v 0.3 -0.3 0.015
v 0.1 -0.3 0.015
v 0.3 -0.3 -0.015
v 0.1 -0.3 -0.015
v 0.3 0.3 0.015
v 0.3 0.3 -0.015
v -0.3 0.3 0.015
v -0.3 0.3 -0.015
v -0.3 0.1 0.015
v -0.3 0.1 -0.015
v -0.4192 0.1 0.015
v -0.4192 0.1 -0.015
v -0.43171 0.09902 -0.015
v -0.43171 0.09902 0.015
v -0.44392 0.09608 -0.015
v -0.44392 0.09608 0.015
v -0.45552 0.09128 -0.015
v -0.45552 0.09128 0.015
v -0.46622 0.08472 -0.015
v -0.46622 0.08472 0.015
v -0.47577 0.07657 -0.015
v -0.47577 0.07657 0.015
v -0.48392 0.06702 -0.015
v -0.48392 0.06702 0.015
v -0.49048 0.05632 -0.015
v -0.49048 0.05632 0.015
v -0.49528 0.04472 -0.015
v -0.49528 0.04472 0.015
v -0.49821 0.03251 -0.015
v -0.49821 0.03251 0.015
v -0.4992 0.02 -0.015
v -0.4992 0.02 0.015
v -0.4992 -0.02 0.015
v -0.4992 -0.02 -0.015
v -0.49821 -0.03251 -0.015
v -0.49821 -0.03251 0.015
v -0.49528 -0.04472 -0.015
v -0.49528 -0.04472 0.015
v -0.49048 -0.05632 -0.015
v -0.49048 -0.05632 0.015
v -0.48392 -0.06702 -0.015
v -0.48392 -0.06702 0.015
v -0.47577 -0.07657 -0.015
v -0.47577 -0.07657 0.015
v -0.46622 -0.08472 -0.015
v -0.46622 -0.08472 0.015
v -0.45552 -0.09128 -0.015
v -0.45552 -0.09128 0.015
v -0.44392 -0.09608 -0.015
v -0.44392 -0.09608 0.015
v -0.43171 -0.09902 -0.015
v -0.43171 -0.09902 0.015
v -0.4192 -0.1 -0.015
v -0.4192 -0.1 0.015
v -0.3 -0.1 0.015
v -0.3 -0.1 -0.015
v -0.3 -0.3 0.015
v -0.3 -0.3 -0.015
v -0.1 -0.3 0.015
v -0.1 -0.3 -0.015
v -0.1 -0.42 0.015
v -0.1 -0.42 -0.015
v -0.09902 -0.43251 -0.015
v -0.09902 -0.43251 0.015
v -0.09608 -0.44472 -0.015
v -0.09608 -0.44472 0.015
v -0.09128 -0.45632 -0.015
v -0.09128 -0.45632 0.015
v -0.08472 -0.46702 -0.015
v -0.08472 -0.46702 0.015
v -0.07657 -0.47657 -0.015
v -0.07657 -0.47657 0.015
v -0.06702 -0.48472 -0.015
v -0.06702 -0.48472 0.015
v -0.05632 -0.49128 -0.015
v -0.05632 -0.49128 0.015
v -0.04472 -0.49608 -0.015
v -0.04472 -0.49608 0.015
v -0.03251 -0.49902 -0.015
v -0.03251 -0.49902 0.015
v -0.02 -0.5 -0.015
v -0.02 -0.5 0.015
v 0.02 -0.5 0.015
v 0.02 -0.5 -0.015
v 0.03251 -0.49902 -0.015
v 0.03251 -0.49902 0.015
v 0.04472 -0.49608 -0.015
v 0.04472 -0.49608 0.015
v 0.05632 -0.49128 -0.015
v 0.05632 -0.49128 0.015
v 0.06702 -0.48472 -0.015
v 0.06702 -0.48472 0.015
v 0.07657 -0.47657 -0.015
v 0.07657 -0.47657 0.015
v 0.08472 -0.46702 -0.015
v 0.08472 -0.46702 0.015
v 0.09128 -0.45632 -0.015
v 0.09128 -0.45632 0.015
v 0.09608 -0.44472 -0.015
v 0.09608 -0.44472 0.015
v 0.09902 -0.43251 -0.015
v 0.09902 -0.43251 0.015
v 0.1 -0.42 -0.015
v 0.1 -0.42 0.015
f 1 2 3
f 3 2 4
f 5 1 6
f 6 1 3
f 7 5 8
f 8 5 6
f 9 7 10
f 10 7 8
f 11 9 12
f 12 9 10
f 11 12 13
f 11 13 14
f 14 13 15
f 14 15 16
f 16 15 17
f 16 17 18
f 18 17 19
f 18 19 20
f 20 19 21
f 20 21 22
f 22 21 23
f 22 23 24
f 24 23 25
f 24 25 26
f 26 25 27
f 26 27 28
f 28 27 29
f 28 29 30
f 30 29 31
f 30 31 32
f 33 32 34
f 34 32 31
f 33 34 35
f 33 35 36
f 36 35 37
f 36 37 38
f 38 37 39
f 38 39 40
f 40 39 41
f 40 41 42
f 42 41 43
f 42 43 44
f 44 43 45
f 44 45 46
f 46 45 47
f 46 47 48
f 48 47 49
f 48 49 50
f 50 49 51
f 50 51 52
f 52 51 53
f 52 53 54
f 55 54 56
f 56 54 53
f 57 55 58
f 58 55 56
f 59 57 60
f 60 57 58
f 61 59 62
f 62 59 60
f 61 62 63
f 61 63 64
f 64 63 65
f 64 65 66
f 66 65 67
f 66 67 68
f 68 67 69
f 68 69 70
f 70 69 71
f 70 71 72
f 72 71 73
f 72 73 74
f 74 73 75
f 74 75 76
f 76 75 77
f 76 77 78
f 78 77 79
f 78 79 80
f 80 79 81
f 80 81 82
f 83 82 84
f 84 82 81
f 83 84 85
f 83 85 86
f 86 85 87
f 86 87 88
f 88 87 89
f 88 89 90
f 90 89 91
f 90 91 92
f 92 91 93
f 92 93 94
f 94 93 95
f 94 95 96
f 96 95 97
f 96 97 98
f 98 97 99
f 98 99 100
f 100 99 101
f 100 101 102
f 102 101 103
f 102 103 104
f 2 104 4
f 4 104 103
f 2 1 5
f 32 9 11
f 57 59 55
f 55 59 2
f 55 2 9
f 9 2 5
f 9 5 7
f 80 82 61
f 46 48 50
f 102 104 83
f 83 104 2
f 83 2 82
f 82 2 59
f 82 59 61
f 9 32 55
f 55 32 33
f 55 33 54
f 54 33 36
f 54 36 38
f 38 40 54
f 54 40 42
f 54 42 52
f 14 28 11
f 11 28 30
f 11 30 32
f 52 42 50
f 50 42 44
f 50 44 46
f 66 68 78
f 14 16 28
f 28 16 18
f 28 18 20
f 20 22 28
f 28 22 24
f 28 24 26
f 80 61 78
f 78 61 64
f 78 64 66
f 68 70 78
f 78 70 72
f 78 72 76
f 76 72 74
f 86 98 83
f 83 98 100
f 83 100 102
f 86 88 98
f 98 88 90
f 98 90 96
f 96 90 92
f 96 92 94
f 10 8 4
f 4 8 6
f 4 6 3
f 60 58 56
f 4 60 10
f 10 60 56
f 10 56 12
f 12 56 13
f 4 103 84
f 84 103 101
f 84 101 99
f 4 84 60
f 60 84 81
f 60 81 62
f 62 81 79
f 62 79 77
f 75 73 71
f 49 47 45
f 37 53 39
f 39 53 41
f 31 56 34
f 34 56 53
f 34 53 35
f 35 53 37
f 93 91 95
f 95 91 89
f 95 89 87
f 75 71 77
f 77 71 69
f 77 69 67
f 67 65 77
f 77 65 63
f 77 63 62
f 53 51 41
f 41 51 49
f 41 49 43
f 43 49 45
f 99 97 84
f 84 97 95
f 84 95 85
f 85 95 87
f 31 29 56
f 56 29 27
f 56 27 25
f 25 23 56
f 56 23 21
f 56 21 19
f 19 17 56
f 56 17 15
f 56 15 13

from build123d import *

# Parameters (mm, degrees)
BOSS_EXTRUDE2_DEPTH = 0.015


with BuildPart() as part:
    # Sketch1 → Boss-Extrude2 (new, symmetric)
    with BuildSketch(Plane.XY):
        with BuildLine():
            Line((-0.419197649, 0.1), (-0.3, 0.1))
            Line((-0.3, 0.1), (-0.3, 0.3))
            Line((-0.3, 0.3), (0.3, 0.3))
            Line((0.3, 0.3), (0.3, -0.3))
            Line((0.3, -0.3), (0.1, -0.3))
            Line((0.1, -0.3), (0.1, -0.42))
            ThreePointArc((0.1, -0.42), (0.076568542, -0.476568542), (0.02, -0.5))
            Line((0.02, -0.5), (-0.02, -0.5))
            ThreePointArc((-0.02, -0.5), (-0.076568542, -0.476568542), (-0.1, -0.42))
            Line((-0.1, -0.42), (-0.1, -0.3))
            Line((-0.1, -0.3), (-0.3, -0.3))
            Line((-0.3, -0.3), (-0.3, -0.1))
            Line((-0.3, -0.1), (-0.419197649, -0.1))
            ThreePointArc((-0.419197649, -0.1), (-0.475766192, -0.076568542), (-0.499197649, -0.02))
            Line((-0.499197649, -0.02), (-0.499197649, 0.02))
            ThreePointArc((-0.499197649, 0.02), (-0.475766192, 0.076568542), (-0.419197649, 0.1))
        make_face()
    extrude(amount=BOSS_EXTRUDE2_DEPTH, both=True)


solid = part.part
